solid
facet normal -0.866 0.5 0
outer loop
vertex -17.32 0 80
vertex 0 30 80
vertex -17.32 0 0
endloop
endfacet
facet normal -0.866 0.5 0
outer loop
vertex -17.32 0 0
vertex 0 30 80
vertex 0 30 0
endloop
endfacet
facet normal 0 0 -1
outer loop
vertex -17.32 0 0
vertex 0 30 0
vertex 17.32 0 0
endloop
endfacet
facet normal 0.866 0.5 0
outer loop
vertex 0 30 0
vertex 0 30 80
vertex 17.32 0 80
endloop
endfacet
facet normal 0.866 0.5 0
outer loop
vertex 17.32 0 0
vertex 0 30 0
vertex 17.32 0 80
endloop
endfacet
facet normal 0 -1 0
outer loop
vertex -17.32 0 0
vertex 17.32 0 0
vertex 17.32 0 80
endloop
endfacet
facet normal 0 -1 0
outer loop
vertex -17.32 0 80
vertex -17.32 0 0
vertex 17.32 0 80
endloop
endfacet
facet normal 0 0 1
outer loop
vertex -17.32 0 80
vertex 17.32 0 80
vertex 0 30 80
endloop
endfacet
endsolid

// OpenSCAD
/*
Triangles.scad
 Author: Tim Koopman
 https://github.com/tkoopman/Delta-Diamond/blob/master/OpenSCAD/Triangles.scad

         angleCA
           /|\
        a / H \ c
         /  |  \
 angleAB ------- angleBC
            b

Standard Parameters
	center: true/false
		If true same as centerXYZ = [true, true, true]

	centerXYZ: Vector of 3 true/false values [CenterX, CenterY, CenterZ]
		center must be left undef

	height: The 3D height of the Triangle. Ignored if heights defined

	heights: Vector of 3 height values heights @ [angleAB, angleBC, angleCA]
		If CenterZ is true each height will be centered individually, this means
		the shape will be different depending on CenterZ. Most times you will want
		CenterZ to be true to get the shape most people want.
*/

/* 
Triangle
	a: Length of side a
	b: Length of side b
	angle: angle at point angleAB
*/
module Triangle(
			a, b, angle, height=1, heights=undef,
			center=undef, centerXYZ=[false,false,false])
{
	// Calculate Heights at each point
	heightAB = ((heights==undef) ? height : heights[0])/2;
	heightBC = ((heights==undef) ? height : heights[1])/2;
	heightCA = ((heights==undef) ? height : heights[2])/2;
	centerZ = (center || (center==undef && centerXYZ[2]))?0:max(heightAB,heightBC,heightCA);

	// Calculate Offsets for centering
	offsetX = (center || (center==undef && centerXYZ[0]))?((cos(angle)*a)+b)/3:0;
	offsetY = (center || (center==undef && centerXYZ[1]))?(sin(angle)*a)/3:0;
	
	pointAB1 = [-offsetX,-offsetY, centerZ-heightAB];
	pointAB2 = [-offsetX,-offsetY, centerZ+heightAB];
	pointBC1 = [b-offsetX,-offsetY, centerZ-heightBC];
	pointBC2 = [b-offsetX,-offsetY, centerZ+heightBC];
	pointCA1 = [(cos(angle)*a)-offsetX,(sin(angle)*a)-offsetY, centerZ-heightCA];
	pointCA2 = [(cos(angle)*a)-offsetX,(sin(angle)*a)-offsetY, centerZ+heightCA];

	polyhedron(
		points=[	pointAB1, pointBC1, pointCA1,
					pointAB2, pointBC2, pointCA2 ],
		triangles=[	
			[0, 1, 2],
			[3, 5, 4],
			[0, 3, 1],
			[1, 3, 4],
			[1, 4, 2],
			[2, 4, 5],
			[2, 5, 0],
			[0, 5, 3] ] );
}

/*
Isosceles Triangle
	Exactly 2 of the following paramaters must be defined.
	If all 3 defined H will be ignored.
	b: length of side b
	angle: angle at points angleAB & angleBC.
*/
module Isosceles_Triangle(
			b, angle, H=undef, height=1, heights=undef,
			center=undef, centerXYZ=[true, false, false])
{
	valid = 	(angle!=undef)?((angle < 90) && (b!=undef||H!=undef)) : (b!=undef&&H!=undef);
	ANGLE = (angle!=undef) ? angle : atan(H / (b/2));
	a = (b==undef)?(H/sin((180-(angle*2))/2)) : 
		 (b / cos(ANGLE))/2;
	B = (b==undef)? (cos(angle)*a)*2:b;
	if (valid)
	{
		Triangle(a=a, b=B, angle=ANGLE, height=height, heights=heights,
					center=center, centerXYZ=centerXYZ);
	} else {
		echo("Invalid Isosceles_Triangle. Must specify any 2 of b, angle and H, and if angle used angle must be less than 90");
	}
}

/*
Right Angled Triangle
	Create a Right Angled Triangle where the hypotenuse will be calculated.

       |\
      a| \
       |  \
       ----
         b
	a: length of side a
	b: length of side b
*/
module Right_Angled_Triangle(
			a, b, height=1, heights=undef,
			center=undef, centerXYZ=[false, false, false])
{
	Triangle(a=a, b=b, angle=90, height=height, heights=heights,
				center=center, centerXYZ=centerXYZ);
}

/*
Wedge
	Is same as Right Angled Triangle with 2 different heights, and rotated.
	Good for creating support structures.
*/
module Wedge(a, b, w1, w2)
{
	rotate([90,0,0])
		Right_Angled_Triangle(a, b, heights=[w1, w2, w1], centerXYZ=[false, false, true]);
}

/*
Equilateral Triangle
	Create a Equilateral Triangle.

	l: Length of all sides (a, b & c)
	H: Triangle size will be based on the this 2D height
		When using H, l is ignored.
*/
module Equilateral_Triangle(
			l=10, H=undef, height=1, heights=undef,
			center=undef, centerXYZ=[true,false,false])
{
	L = (H==undef)?l:H/sin(60);
	Triangle(a=L,b=L,angle=60,height=height, heights=heights,
				center=center, centerXYZ=centerXYZ);
}

/*
Trapezoid
	Create a Basic Trapezoid (Based on Isosceles_Triangle)

            d
          /----\
         /  |   \
     a  /   H    \ c
       /    |     \
 angle ------------ angle
            b

	b: Length of side b
	angle: Angle at points angleAB & angleBC
	H: The 2D height at which the triangle should be cut to create the trapezoid
	heights: If vector of size 3 (Standard for triangles) both cd & da will be the same height, if vector have 4 values [ab,bc,cd,da] than each point can have different heights.
*/
module Trapezoid(
			b, angle=60, H, height=1, heights=undef,
			center=undef, centerXYZ=[true,false,false])
{
	validAngle = (angle < 90);
	adX = H / tan(angle);

	// Calculate Heights at each point
	heightAB = ((heights==undef) ? height : heights[0])/2;
	heightBC = ((heights==undef) ? height : heights[1])/2;
	heightCD = ((heights==undef) ? height : heights[2])/2;
	heightDA = ((heights==undef) ? height : ((len(heights) > 3)?heights[3]:heights[2]))/2;

	// Centers
	centerX = (center || (center==undef && centerXYZ[0]))?0:b/2;
	centerY = (center || (center==undef && centerXYZ[1]))?0:H/2;
	centerZ = (center || (center==undef && centerXYZ[2]))?0:max(heightAB,heightBC,heightCD,heightDA);

	// Points
	y = H/2;
	bx = b/2;
	dx = (b-(adX*2))/2;

	pointAB1 = [centerX-bx, centerY-y, centerZ-heightAB];
	pointAB2 = [centerX-bx, centerY-y, centerZ+heightAB];
	pointBC1 = [centerX+bx, centerY-y, centerZ-heightBC];
	pointBC2 = [centerX+bx, centerY-y, centerZ+heightBC];
	pointCD1 = [centerX+dx, centerY+y, centerZ-heightCD];
	pointCD2 = [centerX+dx, centerY+y, centerZ+heightCD];
	pointDA1 = [centerX-dx, centerY+y, centerZ-heightDA];
	pointDA2 = [centerX-dx, centerY+y, centerZ+heightDA];

	validH = (adX < b/2);

	if (validAngle && validH)
	{
		polyhedron(
			points=[	pointAB1, pointBC1, pointCD1, pointDA1,
						pointAB2, pointBC2, pointCD2, pointDA2 ],
			triangles=[	
				[0, 1, 2],
				[0, 2, 3],
				[4, 6, 5],
				[4, 7, 6],
				[0, 4, 1],
				[1, 4, 5],
				[1, 5, 2],
				[2, 5, 6],
				[2, 6, 3],
				[3, 6, 7],
				[3, 7, 0],
				[0, 7, 4]	] );
	} else {
		if (!validAngle) echo("Trapezoid invalid, angle must be less than 90");
		else echo("Trapezoid invalid, H is larger than triangle");
	}
}


// Examples

Equilateral_Triangle(H=30, height=80);
